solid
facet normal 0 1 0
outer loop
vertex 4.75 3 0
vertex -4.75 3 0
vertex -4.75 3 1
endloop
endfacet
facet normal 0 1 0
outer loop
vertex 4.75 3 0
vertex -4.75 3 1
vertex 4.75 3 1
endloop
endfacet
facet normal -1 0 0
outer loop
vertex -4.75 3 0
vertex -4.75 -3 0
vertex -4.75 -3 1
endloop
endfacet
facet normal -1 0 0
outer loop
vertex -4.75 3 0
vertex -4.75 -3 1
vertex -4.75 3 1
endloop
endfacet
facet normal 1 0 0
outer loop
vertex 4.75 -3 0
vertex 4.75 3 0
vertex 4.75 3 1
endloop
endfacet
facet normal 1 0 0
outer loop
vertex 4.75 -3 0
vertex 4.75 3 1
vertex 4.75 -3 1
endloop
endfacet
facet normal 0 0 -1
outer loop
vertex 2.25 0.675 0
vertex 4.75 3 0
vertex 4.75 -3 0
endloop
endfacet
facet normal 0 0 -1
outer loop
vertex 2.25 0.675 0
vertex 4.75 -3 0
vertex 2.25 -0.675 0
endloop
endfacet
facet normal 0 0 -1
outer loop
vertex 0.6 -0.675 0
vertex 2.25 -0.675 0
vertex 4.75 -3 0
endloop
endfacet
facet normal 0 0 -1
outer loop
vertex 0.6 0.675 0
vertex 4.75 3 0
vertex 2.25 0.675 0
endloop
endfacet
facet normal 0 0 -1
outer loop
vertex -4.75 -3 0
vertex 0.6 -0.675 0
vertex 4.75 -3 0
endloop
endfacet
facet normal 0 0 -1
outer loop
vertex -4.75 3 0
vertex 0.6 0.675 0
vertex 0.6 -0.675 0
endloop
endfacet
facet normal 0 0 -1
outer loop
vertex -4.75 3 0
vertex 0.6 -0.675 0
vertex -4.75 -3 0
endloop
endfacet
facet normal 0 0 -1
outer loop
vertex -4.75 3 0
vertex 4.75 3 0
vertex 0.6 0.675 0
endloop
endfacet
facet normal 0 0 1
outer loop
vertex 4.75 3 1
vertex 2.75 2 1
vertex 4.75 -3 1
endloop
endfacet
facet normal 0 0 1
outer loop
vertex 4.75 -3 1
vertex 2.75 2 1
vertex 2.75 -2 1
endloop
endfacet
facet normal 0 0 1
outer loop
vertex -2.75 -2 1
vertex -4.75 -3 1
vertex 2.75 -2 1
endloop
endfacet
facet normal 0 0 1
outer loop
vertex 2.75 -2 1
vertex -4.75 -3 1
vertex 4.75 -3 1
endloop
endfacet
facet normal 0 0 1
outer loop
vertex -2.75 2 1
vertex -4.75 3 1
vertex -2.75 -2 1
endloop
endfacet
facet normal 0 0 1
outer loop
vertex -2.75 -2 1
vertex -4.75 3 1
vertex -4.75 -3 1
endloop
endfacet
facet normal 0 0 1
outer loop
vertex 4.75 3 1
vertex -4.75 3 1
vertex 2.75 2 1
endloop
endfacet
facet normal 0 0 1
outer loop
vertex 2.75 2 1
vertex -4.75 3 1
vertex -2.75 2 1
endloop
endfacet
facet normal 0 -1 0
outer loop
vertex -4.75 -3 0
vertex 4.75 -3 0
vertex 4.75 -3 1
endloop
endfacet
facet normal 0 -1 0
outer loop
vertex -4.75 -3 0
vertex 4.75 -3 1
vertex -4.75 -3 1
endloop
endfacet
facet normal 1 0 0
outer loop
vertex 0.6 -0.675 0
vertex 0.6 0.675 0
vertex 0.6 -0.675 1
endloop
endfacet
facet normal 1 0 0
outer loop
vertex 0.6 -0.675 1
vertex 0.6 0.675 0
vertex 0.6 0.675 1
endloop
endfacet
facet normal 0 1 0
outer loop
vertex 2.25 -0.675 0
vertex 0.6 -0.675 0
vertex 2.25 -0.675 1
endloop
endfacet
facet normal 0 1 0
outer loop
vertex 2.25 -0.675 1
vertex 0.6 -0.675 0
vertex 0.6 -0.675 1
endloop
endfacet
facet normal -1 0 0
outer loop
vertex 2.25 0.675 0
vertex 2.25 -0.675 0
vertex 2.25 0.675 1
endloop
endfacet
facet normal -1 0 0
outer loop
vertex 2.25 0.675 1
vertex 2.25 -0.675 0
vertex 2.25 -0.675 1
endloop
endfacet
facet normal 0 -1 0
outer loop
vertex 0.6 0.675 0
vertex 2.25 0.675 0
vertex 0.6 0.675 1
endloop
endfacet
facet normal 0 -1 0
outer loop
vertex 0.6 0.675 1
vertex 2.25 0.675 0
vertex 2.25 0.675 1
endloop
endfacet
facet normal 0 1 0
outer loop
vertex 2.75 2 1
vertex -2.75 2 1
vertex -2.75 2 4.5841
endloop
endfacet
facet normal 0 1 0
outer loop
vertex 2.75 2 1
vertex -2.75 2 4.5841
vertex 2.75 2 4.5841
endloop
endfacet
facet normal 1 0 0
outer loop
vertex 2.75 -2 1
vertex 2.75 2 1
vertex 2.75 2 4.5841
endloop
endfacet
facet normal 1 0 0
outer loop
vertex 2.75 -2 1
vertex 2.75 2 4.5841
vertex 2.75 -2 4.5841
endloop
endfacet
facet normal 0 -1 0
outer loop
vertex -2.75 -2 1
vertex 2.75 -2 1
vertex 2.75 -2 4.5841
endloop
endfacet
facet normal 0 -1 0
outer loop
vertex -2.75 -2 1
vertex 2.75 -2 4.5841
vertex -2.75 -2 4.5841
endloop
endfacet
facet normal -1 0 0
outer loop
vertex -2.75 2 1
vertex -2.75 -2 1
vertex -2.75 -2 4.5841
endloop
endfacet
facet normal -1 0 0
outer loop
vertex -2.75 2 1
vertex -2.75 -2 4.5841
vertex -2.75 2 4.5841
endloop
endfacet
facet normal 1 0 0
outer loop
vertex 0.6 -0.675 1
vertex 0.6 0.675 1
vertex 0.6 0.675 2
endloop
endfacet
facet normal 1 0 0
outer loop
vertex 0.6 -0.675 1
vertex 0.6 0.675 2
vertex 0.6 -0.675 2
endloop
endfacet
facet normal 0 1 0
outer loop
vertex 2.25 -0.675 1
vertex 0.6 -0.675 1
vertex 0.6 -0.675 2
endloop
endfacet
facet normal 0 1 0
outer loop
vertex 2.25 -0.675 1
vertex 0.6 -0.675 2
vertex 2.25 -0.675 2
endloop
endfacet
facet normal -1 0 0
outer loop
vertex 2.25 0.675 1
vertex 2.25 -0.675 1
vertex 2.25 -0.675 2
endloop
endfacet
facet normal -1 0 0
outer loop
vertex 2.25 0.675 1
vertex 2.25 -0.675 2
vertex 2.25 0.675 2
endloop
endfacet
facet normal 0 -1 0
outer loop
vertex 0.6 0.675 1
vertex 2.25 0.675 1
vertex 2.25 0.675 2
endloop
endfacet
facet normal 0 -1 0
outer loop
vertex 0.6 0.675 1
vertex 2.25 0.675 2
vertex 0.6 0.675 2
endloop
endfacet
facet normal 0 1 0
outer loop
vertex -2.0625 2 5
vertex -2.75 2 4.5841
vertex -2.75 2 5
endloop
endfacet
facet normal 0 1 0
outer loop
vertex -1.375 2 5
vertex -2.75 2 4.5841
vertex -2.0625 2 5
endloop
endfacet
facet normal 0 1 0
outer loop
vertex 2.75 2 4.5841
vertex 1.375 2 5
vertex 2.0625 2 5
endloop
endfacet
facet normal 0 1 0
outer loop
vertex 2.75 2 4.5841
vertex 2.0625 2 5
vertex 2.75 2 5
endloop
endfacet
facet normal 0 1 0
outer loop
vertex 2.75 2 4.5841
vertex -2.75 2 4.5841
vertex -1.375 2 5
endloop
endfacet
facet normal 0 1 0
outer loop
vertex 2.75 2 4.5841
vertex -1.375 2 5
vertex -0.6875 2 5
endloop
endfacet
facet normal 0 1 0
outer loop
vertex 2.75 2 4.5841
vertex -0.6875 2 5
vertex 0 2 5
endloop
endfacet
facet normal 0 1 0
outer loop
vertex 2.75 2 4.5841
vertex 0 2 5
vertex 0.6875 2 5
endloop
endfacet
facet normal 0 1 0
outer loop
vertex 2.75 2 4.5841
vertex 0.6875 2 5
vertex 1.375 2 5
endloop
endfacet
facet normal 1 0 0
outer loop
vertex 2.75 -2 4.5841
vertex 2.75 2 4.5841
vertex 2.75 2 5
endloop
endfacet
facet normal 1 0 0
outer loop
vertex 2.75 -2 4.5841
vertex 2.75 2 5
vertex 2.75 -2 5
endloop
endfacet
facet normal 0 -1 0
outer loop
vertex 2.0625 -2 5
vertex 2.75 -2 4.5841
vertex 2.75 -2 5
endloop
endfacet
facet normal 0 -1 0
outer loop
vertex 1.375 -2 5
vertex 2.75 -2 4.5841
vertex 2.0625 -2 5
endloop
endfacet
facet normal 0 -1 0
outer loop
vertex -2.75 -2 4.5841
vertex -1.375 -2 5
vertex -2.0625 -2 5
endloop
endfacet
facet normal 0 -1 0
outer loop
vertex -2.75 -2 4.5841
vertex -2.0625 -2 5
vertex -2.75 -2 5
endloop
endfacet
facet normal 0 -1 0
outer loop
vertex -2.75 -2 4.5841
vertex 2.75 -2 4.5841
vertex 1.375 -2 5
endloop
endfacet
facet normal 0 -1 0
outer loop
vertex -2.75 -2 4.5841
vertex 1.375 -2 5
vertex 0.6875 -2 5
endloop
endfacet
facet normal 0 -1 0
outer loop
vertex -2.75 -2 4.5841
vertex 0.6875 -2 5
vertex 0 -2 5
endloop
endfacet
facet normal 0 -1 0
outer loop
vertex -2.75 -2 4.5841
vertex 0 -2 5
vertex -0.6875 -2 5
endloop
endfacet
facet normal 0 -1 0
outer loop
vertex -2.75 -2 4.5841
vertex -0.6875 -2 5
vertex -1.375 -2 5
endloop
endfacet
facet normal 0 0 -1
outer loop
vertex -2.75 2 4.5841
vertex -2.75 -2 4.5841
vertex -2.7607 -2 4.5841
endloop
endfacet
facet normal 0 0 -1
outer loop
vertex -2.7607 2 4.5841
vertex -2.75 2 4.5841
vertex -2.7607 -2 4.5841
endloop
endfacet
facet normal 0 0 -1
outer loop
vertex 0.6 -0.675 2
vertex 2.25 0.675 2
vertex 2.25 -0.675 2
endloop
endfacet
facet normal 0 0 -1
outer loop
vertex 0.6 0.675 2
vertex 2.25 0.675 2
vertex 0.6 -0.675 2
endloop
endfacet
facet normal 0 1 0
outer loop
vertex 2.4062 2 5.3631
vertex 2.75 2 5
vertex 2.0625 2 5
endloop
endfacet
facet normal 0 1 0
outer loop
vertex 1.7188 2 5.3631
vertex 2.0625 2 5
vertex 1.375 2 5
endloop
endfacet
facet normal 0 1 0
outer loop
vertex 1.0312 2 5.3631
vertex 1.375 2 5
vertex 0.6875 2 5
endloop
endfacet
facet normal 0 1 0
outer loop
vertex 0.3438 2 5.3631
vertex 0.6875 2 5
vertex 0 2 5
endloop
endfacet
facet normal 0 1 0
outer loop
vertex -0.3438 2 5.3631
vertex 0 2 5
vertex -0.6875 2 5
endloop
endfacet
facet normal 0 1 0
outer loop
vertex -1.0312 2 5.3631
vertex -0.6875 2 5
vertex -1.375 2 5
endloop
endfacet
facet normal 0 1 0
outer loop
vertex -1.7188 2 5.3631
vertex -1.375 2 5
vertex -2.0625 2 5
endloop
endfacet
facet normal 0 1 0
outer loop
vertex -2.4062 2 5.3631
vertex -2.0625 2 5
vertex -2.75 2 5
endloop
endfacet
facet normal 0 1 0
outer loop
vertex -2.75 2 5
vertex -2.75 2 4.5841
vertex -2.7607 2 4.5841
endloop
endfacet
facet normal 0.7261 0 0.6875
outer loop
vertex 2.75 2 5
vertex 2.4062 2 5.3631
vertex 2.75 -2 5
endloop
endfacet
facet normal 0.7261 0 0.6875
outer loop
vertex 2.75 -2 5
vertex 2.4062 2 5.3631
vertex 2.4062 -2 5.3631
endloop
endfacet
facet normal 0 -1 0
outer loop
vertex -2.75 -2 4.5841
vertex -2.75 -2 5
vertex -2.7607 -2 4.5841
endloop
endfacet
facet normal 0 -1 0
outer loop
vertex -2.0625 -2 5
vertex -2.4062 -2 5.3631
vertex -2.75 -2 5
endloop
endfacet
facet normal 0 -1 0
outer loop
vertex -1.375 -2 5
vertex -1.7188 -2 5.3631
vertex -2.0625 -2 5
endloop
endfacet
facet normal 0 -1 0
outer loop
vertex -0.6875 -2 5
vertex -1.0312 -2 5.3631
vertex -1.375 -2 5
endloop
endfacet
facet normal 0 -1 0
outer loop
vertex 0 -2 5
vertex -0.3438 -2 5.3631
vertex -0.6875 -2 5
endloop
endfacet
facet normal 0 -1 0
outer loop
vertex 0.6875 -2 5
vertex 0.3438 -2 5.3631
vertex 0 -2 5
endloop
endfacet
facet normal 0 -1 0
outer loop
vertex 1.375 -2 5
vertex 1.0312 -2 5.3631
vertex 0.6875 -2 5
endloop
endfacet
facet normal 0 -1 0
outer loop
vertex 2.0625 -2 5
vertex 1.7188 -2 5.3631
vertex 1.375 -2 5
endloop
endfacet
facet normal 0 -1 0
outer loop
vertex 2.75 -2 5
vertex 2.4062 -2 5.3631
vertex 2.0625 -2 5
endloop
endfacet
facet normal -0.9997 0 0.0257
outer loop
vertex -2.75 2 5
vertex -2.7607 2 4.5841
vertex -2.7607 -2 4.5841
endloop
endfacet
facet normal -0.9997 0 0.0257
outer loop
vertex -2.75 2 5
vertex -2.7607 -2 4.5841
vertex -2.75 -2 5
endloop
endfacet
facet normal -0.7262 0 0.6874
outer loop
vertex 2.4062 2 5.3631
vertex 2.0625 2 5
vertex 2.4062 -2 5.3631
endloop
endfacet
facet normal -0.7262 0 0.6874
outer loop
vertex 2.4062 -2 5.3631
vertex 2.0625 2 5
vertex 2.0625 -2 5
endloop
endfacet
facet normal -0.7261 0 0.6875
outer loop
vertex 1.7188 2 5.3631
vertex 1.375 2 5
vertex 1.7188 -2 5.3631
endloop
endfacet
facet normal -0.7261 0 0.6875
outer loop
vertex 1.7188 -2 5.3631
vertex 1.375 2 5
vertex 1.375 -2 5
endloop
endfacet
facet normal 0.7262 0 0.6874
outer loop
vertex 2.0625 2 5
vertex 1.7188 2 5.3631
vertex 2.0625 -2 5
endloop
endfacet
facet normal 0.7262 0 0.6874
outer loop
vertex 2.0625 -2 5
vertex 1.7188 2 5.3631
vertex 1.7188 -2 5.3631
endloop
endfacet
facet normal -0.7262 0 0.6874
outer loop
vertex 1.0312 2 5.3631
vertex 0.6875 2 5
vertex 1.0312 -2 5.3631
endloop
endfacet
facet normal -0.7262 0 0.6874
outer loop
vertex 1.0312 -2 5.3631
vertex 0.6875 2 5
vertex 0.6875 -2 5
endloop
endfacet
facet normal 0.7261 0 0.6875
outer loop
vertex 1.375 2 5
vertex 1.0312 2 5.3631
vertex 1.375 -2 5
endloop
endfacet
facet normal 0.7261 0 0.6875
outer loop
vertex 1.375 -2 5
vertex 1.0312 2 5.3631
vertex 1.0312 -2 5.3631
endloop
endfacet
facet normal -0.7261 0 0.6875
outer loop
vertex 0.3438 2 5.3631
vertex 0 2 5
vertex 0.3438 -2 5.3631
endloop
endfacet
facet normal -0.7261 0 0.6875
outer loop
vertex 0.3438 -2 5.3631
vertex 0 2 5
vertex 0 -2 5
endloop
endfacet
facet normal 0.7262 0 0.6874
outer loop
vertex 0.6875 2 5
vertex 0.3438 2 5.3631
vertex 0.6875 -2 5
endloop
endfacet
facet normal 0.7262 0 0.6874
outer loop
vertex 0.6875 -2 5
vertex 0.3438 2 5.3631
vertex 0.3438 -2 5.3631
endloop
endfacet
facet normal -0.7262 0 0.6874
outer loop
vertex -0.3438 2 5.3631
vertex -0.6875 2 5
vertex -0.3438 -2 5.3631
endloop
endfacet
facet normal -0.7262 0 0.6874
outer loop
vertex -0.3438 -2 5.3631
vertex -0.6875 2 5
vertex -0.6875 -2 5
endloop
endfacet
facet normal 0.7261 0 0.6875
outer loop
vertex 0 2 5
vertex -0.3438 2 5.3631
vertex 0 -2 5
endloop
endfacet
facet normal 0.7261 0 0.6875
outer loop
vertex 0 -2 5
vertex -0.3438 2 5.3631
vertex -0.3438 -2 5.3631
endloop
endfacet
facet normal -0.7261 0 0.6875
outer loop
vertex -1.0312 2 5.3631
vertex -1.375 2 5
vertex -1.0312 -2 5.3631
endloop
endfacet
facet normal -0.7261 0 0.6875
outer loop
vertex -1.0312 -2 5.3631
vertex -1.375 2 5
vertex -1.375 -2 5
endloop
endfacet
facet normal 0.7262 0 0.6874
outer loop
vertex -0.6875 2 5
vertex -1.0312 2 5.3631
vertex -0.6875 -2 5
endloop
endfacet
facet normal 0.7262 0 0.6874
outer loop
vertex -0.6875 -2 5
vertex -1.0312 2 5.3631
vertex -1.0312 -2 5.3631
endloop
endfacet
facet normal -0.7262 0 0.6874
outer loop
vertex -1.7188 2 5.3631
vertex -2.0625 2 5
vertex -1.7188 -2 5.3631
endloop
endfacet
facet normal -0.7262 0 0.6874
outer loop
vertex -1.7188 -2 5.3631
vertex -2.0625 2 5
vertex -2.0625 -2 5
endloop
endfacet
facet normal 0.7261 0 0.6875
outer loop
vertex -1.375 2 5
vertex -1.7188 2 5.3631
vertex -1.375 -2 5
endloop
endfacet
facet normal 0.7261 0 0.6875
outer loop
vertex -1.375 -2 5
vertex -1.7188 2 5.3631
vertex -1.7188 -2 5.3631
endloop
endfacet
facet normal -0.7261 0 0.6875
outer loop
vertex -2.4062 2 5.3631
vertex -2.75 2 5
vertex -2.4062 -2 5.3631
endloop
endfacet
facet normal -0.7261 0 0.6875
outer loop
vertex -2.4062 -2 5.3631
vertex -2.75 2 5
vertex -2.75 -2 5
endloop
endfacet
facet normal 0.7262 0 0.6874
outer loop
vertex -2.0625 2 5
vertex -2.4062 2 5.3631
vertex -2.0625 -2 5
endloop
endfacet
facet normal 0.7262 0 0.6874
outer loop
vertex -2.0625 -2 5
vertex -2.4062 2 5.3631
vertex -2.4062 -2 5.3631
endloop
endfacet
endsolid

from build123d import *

# Parameters (mm, degrees)
SKETCH_W     = 9.5
SKETCH_H     = 6
SKETCH_W_2   = 1.65
SKETCH_H_2   = 1.35
PAD_DEPTH    = 1
SKETCH001_W  = 5.5
SKETCH001_H  = 4
PAD001_DEPTH = 4
SKETCH002_W  = 1.65
SKETCH002_H  = 1.35
POCKET_DEPTH = 2
PAD002_DEPTH = 4


with BuildPart() as part:
    # Sketch → Pad (new body)
    with BuildSketch(Plane.XY):
        Rectangle(SKETCH_W, SKETCH_H)
        with Locations((1.425, 0)):
            Rectangle(SKETCH_W_2, SKETCH_H_2, mode=Mode.SUBTRACT)
    extrude(amount=PAD_DEPTH)

    # Sketch001 (on Face10 of Pad) → Pad001 (join)
    with BuildSketch(Plane.XY.offset(1)):
        Rectangle(SKETCH001_W, SKETCH001_H)
    extrude(amount=PAD001_DEPTH)

    # Sketch002 (on Face4 of Pad001) → Pocket (cut)
    with BuildSketch(Plane(origin=(0, 0, 0), x_dir=(1, 0, 0), z_dir=(0, 0, -1))):
        with Locations((1.425, 0)):
            Rectangle(SKETCH002_W, SKETCH002_H)
    extrude(amount=-POCKET_DEPTH, mode=Mode.SUBTRACT)

    # Sketch003 (on Face11 of Pocket) → Pad002 (join)
    with BuildSketch(Plane(origin=(0, 2, 0), x_dir=(-1, 0, 0), z_dir=(0, 1, 0))):
        Polygon((-2.75, 5), (-2.40625, 5.363092), (-2.0625, 5), (-1.71875, 5.363092), (-1.375, 5), (-1.03125, 5.363092), (-0.6875, 5), (-0.34375, 5.363092), (0, 5), (0.34375, 5.363092), (0.6875, 5), (1.03125, 5.363092), (1.375, 5), (1.71875, 5.363092), (2.0625, 5), (2.40625, 5.363092), (2.75, 5), (2.760715, 4.584067), (-2.75, 4.584067), align=None)
    extrude(amount=-PAD002_DEPTH)


solid = part.part
